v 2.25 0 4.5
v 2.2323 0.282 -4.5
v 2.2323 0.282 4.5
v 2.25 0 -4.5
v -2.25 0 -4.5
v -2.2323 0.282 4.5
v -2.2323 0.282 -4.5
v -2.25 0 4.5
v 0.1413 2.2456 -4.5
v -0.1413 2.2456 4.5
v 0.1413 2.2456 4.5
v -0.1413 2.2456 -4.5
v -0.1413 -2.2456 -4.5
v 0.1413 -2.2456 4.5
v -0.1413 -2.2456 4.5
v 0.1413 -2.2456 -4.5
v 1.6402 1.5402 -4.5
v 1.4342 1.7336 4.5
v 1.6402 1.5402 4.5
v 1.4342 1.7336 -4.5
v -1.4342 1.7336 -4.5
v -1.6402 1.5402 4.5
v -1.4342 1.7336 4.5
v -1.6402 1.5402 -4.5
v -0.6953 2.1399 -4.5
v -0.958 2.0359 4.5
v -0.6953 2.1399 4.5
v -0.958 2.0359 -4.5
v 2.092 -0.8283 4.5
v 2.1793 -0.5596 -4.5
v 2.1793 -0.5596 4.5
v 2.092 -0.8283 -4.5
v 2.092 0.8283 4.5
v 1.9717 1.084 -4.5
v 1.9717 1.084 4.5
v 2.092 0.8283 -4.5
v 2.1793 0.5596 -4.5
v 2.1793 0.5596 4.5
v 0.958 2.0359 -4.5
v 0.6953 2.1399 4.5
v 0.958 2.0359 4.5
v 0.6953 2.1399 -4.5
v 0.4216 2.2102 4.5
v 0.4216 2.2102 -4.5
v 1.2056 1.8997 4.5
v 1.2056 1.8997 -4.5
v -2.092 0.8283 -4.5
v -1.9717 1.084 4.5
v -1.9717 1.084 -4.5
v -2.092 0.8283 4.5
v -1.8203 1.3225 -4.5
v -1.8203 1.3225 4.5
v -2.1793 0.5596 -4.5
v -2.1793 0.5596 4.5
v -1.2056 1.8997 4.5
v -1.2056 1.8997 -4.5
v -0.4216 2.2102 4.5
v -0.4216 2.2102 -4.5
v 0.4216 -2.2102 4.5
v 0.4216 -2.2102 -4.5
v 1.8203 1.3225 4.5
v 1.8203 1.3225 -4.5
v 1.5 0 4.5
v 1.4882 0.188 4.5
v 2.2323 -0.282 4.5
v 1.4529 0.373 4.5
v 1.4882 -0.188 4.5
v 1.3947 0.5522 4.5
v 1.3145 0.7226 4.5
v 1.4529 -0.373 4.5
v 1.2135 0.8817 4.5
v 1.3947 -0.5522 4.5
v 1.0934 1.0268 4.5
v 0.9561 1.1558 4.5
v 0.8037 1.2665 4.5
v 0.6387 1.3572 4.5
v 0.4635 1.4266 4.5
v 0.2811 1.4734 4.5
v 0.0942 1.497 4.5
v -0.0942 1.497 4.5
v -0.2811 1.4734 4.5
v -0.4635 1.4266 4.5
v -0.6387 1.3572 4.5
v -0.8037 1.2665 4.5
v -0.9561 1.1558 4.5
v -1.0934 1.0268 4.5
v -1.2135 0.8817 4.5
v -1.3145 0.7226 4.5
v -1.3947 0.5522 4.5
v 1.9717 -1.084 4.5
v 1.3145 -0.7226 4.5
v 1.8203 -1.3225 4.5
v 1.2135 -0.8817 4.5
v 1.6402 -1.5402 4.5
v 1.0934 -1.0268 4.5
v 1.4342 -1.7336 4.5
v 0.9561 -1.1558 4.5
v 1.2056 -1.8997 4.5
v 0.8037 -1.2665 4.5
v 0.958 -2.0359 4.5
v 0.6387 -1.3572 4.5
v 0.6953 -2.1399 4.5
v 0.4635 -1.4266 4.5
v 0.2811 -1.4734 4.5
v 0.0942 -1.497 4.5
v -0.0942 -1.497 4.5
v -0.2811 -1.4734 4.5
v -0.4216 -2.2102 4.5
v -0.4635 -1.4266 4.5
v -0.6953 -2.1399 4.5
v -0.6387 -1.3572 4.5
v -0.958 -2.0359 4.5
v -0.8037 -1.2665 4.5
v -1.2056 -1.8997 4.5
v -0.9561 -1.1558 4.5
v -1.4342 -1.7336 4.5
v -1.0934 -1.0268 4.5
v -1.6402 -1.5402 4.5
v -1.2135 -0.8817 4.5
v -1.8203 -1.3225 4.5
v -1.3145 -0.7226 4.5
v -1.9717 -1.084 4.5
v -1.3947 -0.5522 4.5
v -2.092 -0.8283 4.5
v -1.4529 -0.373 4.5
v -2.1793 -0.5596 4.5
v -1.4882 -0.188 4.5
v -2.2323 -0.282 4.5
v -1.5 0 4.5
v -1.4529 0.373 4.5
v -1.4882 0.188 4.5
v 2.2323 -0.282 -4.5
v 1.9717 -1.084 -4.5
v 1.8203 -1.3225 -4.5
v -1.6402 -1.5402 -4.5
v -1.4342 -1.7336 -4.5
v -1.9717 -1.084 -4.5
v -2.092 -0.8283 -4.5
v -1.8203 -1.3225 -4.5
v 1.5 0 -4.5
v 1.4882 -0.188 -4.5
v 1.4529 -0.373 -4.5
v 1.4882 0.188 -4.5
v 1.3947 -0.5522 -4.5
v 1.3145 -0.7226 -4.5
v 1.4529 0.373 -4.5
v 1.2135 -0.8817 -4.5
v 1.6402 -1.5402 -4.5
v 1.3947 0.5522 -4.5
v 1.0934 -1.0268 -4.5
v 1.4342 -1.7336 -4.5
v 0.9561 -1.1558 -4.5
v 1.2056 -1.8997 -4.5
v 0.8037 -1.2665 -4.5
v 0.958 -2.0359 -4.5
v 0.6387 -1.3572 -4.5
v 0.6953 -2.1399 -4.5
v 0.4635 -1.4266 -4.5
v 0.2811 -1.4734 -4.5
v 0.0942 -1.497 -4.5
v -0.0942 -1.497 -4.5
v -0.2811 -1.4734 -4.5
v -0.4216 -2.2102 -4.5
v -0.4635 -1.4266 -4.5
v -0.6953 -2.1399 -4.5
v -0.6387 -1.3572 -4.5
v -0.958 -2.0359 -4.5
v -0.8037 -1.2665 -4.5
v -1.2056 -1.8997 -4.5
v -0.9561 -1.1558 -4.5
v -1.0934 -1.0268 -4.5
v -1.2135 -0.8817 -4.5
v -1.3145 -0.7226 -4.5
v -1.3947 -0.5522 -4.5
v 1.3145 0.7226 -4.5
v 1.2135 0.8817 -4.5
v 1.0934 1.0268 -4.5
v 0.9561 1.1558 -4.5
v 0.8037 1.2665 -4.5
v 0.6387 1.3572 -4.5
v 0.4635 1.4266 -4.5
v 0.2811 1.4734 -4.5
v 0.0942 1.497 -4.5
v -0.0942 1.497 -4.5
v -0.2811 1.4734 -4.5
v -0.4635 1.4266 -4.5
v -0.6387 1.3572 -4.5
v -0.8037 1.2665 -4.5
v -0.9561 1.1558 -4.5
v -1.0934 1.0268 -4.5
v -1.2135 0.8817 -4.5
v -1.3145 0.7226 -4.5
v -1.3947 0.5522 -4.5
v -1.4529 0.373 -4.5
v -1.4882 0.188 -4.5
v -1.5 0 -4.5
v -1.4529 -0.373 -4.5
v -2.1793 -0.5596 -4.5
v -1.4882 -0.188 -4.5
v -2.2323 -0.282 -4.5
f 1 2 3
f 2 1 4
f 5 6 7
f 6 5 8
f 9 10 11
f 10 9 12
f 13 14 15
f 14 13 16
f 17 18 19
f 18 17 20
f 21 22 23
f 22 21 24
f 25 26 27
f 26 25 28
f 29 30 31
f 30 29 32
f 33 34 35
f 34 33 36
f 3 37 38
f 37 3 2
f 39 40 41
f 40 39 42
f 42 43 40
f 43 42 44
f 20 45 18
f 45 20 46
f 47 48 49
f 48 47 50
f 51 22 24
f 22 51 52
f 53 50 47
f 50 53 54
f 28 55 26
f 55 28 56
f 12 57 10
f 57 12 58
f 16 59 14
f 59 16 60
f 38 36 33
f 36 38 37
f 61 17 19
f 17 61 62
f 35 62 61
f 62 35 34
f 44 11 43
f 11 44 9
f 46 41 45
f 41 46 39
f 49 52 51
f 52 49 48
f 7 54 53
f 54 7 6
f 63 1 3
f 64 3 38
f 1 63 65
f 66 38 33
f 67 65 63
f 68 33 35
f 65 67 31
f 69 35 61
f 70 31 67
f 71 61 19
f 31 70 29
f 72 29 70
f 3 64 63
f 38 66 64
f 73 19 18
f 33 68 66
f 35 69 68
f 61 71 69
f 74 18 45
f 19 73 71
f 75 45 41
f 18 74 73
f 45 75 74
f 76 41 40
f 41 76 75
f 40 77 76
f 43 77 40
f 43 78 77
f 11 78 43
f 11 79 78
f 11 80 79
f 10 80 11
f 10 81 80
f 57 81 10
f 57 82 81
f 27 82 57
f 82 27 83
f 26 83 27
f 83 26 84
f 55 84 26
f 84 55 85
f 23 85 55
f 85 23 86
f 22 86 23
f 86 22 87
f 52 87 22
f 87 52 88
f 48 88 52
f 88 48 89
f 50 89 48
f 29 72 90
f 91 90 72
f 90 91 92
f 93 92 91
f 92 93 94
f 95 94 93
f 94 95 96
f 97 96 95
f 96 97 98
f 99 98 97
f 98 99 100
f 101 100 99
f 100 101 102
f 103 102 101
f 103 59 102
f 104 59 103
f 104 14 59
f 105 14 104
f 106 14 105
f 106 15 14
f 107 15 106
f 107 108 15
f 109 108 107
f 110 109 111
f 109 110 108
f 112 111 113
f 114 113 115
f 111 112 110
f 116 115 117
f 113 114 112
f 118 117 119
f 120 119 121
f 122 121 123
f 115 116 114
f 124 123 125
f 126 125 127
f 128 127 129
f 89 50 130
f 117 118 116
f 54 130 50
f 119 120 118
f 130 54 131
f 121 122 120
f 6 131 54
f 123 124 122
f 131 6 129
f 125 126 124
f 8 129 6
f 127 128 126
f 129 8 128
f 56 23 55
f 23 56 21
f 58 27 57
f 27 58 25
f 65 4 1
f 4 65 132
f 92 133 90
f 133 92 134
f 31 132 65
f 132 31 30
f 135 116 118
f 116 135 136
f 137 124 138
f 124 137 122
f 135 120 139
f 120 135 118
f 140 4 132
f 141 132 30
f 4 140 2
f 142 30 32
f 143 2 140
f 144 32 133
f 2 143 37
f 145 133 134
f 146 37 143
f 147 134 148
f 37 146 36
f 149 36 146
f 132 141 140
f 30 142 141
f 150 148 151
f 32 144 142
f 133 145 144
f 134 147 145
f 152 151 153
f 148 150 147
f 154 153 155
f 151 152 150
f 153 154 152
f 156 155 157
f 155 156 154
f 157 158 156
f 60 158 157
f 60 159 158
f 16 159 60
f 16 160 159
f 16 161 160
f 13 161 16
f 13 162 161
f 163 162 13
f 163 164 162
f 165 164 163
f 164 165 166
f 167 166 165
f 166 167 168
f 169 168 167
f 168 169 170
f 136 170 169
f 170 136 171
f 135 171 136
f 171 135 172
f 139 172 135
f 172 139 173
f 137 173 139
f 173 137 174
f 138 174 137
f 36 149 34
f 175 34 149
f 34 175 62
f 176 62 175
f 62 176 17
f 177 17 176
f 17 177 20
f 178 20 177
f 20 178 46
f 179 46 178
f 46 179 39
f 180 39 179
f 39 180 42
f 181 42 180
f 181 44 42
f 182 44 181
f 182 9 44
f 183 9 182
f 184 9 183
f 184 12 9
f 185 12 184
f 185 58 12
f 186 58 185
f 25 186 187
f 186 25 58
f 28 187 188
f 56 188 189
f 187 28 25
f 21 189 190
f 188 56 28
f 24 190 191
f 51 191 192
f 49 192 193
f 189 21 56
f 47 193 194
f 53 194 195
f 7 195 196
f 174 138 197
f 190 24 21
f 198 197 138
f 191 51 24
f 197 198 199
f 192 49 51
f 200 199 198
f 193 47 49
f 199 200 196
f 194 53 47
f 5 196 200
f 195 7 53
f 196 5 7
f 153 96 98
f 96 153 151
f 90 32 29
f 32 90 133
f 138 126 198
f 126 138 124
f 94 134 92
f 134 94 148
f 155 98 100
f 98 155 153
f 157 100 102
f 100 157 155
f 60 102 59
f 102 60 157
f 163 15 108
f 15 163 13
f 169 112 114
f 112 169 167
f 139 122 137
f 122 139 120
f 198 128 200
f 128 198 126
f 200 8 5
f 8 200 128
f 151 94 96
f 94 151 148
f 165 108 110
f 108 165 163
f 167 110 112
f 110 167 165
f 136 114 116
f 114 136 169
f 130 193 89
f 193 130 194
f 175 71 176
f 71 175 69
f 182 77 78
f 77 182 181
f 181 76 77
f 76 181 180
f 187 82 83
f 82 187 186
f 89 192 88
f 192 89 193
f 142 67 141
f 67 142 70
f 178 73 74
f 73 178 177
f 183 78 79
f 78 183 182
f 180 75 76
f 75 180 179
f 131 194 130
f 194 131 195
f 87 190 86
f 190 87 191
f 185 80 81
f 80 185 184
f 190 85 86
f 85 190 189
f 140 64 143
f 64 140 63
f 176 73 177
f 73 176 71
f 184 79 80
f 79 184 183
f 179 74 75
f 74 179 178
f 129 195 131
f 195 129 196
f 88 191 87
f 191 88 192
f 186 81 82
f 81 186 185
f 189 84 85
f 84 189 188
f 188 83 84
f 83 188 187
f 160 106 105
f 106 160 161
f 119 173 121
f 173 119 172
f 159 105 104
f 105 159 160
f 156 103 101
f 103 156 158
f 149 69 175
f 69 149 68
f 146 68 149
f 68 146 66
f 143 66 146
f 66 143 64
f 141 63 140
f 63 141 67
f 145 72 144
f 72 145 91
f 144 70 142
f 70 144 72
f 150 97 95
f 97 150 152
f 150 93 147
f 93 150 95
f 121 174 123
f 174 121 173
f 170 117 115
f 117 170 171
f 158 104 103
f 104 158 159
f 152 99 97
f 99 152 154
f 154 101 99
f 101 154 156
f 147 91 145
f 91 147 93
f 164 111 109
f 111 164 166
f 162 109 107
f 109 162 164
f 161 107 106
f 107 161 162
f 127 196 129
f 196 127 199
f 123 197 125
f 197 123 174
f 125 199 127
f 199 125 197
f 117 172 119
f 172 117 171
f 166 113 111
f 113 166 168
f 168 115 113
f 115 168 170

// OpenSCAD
$fn = 50;


difference() {
	union() {
		translate(v = [0, 0, -4.5000000000]) {
			cylinder(h = 9, r = 2.2500000000);
		}
	}
	union() {
		translate(v = [0, 0, -100.0000000000]) {
			cylinder(h = 200, r = 1.5000000000);
		}
	}
}
